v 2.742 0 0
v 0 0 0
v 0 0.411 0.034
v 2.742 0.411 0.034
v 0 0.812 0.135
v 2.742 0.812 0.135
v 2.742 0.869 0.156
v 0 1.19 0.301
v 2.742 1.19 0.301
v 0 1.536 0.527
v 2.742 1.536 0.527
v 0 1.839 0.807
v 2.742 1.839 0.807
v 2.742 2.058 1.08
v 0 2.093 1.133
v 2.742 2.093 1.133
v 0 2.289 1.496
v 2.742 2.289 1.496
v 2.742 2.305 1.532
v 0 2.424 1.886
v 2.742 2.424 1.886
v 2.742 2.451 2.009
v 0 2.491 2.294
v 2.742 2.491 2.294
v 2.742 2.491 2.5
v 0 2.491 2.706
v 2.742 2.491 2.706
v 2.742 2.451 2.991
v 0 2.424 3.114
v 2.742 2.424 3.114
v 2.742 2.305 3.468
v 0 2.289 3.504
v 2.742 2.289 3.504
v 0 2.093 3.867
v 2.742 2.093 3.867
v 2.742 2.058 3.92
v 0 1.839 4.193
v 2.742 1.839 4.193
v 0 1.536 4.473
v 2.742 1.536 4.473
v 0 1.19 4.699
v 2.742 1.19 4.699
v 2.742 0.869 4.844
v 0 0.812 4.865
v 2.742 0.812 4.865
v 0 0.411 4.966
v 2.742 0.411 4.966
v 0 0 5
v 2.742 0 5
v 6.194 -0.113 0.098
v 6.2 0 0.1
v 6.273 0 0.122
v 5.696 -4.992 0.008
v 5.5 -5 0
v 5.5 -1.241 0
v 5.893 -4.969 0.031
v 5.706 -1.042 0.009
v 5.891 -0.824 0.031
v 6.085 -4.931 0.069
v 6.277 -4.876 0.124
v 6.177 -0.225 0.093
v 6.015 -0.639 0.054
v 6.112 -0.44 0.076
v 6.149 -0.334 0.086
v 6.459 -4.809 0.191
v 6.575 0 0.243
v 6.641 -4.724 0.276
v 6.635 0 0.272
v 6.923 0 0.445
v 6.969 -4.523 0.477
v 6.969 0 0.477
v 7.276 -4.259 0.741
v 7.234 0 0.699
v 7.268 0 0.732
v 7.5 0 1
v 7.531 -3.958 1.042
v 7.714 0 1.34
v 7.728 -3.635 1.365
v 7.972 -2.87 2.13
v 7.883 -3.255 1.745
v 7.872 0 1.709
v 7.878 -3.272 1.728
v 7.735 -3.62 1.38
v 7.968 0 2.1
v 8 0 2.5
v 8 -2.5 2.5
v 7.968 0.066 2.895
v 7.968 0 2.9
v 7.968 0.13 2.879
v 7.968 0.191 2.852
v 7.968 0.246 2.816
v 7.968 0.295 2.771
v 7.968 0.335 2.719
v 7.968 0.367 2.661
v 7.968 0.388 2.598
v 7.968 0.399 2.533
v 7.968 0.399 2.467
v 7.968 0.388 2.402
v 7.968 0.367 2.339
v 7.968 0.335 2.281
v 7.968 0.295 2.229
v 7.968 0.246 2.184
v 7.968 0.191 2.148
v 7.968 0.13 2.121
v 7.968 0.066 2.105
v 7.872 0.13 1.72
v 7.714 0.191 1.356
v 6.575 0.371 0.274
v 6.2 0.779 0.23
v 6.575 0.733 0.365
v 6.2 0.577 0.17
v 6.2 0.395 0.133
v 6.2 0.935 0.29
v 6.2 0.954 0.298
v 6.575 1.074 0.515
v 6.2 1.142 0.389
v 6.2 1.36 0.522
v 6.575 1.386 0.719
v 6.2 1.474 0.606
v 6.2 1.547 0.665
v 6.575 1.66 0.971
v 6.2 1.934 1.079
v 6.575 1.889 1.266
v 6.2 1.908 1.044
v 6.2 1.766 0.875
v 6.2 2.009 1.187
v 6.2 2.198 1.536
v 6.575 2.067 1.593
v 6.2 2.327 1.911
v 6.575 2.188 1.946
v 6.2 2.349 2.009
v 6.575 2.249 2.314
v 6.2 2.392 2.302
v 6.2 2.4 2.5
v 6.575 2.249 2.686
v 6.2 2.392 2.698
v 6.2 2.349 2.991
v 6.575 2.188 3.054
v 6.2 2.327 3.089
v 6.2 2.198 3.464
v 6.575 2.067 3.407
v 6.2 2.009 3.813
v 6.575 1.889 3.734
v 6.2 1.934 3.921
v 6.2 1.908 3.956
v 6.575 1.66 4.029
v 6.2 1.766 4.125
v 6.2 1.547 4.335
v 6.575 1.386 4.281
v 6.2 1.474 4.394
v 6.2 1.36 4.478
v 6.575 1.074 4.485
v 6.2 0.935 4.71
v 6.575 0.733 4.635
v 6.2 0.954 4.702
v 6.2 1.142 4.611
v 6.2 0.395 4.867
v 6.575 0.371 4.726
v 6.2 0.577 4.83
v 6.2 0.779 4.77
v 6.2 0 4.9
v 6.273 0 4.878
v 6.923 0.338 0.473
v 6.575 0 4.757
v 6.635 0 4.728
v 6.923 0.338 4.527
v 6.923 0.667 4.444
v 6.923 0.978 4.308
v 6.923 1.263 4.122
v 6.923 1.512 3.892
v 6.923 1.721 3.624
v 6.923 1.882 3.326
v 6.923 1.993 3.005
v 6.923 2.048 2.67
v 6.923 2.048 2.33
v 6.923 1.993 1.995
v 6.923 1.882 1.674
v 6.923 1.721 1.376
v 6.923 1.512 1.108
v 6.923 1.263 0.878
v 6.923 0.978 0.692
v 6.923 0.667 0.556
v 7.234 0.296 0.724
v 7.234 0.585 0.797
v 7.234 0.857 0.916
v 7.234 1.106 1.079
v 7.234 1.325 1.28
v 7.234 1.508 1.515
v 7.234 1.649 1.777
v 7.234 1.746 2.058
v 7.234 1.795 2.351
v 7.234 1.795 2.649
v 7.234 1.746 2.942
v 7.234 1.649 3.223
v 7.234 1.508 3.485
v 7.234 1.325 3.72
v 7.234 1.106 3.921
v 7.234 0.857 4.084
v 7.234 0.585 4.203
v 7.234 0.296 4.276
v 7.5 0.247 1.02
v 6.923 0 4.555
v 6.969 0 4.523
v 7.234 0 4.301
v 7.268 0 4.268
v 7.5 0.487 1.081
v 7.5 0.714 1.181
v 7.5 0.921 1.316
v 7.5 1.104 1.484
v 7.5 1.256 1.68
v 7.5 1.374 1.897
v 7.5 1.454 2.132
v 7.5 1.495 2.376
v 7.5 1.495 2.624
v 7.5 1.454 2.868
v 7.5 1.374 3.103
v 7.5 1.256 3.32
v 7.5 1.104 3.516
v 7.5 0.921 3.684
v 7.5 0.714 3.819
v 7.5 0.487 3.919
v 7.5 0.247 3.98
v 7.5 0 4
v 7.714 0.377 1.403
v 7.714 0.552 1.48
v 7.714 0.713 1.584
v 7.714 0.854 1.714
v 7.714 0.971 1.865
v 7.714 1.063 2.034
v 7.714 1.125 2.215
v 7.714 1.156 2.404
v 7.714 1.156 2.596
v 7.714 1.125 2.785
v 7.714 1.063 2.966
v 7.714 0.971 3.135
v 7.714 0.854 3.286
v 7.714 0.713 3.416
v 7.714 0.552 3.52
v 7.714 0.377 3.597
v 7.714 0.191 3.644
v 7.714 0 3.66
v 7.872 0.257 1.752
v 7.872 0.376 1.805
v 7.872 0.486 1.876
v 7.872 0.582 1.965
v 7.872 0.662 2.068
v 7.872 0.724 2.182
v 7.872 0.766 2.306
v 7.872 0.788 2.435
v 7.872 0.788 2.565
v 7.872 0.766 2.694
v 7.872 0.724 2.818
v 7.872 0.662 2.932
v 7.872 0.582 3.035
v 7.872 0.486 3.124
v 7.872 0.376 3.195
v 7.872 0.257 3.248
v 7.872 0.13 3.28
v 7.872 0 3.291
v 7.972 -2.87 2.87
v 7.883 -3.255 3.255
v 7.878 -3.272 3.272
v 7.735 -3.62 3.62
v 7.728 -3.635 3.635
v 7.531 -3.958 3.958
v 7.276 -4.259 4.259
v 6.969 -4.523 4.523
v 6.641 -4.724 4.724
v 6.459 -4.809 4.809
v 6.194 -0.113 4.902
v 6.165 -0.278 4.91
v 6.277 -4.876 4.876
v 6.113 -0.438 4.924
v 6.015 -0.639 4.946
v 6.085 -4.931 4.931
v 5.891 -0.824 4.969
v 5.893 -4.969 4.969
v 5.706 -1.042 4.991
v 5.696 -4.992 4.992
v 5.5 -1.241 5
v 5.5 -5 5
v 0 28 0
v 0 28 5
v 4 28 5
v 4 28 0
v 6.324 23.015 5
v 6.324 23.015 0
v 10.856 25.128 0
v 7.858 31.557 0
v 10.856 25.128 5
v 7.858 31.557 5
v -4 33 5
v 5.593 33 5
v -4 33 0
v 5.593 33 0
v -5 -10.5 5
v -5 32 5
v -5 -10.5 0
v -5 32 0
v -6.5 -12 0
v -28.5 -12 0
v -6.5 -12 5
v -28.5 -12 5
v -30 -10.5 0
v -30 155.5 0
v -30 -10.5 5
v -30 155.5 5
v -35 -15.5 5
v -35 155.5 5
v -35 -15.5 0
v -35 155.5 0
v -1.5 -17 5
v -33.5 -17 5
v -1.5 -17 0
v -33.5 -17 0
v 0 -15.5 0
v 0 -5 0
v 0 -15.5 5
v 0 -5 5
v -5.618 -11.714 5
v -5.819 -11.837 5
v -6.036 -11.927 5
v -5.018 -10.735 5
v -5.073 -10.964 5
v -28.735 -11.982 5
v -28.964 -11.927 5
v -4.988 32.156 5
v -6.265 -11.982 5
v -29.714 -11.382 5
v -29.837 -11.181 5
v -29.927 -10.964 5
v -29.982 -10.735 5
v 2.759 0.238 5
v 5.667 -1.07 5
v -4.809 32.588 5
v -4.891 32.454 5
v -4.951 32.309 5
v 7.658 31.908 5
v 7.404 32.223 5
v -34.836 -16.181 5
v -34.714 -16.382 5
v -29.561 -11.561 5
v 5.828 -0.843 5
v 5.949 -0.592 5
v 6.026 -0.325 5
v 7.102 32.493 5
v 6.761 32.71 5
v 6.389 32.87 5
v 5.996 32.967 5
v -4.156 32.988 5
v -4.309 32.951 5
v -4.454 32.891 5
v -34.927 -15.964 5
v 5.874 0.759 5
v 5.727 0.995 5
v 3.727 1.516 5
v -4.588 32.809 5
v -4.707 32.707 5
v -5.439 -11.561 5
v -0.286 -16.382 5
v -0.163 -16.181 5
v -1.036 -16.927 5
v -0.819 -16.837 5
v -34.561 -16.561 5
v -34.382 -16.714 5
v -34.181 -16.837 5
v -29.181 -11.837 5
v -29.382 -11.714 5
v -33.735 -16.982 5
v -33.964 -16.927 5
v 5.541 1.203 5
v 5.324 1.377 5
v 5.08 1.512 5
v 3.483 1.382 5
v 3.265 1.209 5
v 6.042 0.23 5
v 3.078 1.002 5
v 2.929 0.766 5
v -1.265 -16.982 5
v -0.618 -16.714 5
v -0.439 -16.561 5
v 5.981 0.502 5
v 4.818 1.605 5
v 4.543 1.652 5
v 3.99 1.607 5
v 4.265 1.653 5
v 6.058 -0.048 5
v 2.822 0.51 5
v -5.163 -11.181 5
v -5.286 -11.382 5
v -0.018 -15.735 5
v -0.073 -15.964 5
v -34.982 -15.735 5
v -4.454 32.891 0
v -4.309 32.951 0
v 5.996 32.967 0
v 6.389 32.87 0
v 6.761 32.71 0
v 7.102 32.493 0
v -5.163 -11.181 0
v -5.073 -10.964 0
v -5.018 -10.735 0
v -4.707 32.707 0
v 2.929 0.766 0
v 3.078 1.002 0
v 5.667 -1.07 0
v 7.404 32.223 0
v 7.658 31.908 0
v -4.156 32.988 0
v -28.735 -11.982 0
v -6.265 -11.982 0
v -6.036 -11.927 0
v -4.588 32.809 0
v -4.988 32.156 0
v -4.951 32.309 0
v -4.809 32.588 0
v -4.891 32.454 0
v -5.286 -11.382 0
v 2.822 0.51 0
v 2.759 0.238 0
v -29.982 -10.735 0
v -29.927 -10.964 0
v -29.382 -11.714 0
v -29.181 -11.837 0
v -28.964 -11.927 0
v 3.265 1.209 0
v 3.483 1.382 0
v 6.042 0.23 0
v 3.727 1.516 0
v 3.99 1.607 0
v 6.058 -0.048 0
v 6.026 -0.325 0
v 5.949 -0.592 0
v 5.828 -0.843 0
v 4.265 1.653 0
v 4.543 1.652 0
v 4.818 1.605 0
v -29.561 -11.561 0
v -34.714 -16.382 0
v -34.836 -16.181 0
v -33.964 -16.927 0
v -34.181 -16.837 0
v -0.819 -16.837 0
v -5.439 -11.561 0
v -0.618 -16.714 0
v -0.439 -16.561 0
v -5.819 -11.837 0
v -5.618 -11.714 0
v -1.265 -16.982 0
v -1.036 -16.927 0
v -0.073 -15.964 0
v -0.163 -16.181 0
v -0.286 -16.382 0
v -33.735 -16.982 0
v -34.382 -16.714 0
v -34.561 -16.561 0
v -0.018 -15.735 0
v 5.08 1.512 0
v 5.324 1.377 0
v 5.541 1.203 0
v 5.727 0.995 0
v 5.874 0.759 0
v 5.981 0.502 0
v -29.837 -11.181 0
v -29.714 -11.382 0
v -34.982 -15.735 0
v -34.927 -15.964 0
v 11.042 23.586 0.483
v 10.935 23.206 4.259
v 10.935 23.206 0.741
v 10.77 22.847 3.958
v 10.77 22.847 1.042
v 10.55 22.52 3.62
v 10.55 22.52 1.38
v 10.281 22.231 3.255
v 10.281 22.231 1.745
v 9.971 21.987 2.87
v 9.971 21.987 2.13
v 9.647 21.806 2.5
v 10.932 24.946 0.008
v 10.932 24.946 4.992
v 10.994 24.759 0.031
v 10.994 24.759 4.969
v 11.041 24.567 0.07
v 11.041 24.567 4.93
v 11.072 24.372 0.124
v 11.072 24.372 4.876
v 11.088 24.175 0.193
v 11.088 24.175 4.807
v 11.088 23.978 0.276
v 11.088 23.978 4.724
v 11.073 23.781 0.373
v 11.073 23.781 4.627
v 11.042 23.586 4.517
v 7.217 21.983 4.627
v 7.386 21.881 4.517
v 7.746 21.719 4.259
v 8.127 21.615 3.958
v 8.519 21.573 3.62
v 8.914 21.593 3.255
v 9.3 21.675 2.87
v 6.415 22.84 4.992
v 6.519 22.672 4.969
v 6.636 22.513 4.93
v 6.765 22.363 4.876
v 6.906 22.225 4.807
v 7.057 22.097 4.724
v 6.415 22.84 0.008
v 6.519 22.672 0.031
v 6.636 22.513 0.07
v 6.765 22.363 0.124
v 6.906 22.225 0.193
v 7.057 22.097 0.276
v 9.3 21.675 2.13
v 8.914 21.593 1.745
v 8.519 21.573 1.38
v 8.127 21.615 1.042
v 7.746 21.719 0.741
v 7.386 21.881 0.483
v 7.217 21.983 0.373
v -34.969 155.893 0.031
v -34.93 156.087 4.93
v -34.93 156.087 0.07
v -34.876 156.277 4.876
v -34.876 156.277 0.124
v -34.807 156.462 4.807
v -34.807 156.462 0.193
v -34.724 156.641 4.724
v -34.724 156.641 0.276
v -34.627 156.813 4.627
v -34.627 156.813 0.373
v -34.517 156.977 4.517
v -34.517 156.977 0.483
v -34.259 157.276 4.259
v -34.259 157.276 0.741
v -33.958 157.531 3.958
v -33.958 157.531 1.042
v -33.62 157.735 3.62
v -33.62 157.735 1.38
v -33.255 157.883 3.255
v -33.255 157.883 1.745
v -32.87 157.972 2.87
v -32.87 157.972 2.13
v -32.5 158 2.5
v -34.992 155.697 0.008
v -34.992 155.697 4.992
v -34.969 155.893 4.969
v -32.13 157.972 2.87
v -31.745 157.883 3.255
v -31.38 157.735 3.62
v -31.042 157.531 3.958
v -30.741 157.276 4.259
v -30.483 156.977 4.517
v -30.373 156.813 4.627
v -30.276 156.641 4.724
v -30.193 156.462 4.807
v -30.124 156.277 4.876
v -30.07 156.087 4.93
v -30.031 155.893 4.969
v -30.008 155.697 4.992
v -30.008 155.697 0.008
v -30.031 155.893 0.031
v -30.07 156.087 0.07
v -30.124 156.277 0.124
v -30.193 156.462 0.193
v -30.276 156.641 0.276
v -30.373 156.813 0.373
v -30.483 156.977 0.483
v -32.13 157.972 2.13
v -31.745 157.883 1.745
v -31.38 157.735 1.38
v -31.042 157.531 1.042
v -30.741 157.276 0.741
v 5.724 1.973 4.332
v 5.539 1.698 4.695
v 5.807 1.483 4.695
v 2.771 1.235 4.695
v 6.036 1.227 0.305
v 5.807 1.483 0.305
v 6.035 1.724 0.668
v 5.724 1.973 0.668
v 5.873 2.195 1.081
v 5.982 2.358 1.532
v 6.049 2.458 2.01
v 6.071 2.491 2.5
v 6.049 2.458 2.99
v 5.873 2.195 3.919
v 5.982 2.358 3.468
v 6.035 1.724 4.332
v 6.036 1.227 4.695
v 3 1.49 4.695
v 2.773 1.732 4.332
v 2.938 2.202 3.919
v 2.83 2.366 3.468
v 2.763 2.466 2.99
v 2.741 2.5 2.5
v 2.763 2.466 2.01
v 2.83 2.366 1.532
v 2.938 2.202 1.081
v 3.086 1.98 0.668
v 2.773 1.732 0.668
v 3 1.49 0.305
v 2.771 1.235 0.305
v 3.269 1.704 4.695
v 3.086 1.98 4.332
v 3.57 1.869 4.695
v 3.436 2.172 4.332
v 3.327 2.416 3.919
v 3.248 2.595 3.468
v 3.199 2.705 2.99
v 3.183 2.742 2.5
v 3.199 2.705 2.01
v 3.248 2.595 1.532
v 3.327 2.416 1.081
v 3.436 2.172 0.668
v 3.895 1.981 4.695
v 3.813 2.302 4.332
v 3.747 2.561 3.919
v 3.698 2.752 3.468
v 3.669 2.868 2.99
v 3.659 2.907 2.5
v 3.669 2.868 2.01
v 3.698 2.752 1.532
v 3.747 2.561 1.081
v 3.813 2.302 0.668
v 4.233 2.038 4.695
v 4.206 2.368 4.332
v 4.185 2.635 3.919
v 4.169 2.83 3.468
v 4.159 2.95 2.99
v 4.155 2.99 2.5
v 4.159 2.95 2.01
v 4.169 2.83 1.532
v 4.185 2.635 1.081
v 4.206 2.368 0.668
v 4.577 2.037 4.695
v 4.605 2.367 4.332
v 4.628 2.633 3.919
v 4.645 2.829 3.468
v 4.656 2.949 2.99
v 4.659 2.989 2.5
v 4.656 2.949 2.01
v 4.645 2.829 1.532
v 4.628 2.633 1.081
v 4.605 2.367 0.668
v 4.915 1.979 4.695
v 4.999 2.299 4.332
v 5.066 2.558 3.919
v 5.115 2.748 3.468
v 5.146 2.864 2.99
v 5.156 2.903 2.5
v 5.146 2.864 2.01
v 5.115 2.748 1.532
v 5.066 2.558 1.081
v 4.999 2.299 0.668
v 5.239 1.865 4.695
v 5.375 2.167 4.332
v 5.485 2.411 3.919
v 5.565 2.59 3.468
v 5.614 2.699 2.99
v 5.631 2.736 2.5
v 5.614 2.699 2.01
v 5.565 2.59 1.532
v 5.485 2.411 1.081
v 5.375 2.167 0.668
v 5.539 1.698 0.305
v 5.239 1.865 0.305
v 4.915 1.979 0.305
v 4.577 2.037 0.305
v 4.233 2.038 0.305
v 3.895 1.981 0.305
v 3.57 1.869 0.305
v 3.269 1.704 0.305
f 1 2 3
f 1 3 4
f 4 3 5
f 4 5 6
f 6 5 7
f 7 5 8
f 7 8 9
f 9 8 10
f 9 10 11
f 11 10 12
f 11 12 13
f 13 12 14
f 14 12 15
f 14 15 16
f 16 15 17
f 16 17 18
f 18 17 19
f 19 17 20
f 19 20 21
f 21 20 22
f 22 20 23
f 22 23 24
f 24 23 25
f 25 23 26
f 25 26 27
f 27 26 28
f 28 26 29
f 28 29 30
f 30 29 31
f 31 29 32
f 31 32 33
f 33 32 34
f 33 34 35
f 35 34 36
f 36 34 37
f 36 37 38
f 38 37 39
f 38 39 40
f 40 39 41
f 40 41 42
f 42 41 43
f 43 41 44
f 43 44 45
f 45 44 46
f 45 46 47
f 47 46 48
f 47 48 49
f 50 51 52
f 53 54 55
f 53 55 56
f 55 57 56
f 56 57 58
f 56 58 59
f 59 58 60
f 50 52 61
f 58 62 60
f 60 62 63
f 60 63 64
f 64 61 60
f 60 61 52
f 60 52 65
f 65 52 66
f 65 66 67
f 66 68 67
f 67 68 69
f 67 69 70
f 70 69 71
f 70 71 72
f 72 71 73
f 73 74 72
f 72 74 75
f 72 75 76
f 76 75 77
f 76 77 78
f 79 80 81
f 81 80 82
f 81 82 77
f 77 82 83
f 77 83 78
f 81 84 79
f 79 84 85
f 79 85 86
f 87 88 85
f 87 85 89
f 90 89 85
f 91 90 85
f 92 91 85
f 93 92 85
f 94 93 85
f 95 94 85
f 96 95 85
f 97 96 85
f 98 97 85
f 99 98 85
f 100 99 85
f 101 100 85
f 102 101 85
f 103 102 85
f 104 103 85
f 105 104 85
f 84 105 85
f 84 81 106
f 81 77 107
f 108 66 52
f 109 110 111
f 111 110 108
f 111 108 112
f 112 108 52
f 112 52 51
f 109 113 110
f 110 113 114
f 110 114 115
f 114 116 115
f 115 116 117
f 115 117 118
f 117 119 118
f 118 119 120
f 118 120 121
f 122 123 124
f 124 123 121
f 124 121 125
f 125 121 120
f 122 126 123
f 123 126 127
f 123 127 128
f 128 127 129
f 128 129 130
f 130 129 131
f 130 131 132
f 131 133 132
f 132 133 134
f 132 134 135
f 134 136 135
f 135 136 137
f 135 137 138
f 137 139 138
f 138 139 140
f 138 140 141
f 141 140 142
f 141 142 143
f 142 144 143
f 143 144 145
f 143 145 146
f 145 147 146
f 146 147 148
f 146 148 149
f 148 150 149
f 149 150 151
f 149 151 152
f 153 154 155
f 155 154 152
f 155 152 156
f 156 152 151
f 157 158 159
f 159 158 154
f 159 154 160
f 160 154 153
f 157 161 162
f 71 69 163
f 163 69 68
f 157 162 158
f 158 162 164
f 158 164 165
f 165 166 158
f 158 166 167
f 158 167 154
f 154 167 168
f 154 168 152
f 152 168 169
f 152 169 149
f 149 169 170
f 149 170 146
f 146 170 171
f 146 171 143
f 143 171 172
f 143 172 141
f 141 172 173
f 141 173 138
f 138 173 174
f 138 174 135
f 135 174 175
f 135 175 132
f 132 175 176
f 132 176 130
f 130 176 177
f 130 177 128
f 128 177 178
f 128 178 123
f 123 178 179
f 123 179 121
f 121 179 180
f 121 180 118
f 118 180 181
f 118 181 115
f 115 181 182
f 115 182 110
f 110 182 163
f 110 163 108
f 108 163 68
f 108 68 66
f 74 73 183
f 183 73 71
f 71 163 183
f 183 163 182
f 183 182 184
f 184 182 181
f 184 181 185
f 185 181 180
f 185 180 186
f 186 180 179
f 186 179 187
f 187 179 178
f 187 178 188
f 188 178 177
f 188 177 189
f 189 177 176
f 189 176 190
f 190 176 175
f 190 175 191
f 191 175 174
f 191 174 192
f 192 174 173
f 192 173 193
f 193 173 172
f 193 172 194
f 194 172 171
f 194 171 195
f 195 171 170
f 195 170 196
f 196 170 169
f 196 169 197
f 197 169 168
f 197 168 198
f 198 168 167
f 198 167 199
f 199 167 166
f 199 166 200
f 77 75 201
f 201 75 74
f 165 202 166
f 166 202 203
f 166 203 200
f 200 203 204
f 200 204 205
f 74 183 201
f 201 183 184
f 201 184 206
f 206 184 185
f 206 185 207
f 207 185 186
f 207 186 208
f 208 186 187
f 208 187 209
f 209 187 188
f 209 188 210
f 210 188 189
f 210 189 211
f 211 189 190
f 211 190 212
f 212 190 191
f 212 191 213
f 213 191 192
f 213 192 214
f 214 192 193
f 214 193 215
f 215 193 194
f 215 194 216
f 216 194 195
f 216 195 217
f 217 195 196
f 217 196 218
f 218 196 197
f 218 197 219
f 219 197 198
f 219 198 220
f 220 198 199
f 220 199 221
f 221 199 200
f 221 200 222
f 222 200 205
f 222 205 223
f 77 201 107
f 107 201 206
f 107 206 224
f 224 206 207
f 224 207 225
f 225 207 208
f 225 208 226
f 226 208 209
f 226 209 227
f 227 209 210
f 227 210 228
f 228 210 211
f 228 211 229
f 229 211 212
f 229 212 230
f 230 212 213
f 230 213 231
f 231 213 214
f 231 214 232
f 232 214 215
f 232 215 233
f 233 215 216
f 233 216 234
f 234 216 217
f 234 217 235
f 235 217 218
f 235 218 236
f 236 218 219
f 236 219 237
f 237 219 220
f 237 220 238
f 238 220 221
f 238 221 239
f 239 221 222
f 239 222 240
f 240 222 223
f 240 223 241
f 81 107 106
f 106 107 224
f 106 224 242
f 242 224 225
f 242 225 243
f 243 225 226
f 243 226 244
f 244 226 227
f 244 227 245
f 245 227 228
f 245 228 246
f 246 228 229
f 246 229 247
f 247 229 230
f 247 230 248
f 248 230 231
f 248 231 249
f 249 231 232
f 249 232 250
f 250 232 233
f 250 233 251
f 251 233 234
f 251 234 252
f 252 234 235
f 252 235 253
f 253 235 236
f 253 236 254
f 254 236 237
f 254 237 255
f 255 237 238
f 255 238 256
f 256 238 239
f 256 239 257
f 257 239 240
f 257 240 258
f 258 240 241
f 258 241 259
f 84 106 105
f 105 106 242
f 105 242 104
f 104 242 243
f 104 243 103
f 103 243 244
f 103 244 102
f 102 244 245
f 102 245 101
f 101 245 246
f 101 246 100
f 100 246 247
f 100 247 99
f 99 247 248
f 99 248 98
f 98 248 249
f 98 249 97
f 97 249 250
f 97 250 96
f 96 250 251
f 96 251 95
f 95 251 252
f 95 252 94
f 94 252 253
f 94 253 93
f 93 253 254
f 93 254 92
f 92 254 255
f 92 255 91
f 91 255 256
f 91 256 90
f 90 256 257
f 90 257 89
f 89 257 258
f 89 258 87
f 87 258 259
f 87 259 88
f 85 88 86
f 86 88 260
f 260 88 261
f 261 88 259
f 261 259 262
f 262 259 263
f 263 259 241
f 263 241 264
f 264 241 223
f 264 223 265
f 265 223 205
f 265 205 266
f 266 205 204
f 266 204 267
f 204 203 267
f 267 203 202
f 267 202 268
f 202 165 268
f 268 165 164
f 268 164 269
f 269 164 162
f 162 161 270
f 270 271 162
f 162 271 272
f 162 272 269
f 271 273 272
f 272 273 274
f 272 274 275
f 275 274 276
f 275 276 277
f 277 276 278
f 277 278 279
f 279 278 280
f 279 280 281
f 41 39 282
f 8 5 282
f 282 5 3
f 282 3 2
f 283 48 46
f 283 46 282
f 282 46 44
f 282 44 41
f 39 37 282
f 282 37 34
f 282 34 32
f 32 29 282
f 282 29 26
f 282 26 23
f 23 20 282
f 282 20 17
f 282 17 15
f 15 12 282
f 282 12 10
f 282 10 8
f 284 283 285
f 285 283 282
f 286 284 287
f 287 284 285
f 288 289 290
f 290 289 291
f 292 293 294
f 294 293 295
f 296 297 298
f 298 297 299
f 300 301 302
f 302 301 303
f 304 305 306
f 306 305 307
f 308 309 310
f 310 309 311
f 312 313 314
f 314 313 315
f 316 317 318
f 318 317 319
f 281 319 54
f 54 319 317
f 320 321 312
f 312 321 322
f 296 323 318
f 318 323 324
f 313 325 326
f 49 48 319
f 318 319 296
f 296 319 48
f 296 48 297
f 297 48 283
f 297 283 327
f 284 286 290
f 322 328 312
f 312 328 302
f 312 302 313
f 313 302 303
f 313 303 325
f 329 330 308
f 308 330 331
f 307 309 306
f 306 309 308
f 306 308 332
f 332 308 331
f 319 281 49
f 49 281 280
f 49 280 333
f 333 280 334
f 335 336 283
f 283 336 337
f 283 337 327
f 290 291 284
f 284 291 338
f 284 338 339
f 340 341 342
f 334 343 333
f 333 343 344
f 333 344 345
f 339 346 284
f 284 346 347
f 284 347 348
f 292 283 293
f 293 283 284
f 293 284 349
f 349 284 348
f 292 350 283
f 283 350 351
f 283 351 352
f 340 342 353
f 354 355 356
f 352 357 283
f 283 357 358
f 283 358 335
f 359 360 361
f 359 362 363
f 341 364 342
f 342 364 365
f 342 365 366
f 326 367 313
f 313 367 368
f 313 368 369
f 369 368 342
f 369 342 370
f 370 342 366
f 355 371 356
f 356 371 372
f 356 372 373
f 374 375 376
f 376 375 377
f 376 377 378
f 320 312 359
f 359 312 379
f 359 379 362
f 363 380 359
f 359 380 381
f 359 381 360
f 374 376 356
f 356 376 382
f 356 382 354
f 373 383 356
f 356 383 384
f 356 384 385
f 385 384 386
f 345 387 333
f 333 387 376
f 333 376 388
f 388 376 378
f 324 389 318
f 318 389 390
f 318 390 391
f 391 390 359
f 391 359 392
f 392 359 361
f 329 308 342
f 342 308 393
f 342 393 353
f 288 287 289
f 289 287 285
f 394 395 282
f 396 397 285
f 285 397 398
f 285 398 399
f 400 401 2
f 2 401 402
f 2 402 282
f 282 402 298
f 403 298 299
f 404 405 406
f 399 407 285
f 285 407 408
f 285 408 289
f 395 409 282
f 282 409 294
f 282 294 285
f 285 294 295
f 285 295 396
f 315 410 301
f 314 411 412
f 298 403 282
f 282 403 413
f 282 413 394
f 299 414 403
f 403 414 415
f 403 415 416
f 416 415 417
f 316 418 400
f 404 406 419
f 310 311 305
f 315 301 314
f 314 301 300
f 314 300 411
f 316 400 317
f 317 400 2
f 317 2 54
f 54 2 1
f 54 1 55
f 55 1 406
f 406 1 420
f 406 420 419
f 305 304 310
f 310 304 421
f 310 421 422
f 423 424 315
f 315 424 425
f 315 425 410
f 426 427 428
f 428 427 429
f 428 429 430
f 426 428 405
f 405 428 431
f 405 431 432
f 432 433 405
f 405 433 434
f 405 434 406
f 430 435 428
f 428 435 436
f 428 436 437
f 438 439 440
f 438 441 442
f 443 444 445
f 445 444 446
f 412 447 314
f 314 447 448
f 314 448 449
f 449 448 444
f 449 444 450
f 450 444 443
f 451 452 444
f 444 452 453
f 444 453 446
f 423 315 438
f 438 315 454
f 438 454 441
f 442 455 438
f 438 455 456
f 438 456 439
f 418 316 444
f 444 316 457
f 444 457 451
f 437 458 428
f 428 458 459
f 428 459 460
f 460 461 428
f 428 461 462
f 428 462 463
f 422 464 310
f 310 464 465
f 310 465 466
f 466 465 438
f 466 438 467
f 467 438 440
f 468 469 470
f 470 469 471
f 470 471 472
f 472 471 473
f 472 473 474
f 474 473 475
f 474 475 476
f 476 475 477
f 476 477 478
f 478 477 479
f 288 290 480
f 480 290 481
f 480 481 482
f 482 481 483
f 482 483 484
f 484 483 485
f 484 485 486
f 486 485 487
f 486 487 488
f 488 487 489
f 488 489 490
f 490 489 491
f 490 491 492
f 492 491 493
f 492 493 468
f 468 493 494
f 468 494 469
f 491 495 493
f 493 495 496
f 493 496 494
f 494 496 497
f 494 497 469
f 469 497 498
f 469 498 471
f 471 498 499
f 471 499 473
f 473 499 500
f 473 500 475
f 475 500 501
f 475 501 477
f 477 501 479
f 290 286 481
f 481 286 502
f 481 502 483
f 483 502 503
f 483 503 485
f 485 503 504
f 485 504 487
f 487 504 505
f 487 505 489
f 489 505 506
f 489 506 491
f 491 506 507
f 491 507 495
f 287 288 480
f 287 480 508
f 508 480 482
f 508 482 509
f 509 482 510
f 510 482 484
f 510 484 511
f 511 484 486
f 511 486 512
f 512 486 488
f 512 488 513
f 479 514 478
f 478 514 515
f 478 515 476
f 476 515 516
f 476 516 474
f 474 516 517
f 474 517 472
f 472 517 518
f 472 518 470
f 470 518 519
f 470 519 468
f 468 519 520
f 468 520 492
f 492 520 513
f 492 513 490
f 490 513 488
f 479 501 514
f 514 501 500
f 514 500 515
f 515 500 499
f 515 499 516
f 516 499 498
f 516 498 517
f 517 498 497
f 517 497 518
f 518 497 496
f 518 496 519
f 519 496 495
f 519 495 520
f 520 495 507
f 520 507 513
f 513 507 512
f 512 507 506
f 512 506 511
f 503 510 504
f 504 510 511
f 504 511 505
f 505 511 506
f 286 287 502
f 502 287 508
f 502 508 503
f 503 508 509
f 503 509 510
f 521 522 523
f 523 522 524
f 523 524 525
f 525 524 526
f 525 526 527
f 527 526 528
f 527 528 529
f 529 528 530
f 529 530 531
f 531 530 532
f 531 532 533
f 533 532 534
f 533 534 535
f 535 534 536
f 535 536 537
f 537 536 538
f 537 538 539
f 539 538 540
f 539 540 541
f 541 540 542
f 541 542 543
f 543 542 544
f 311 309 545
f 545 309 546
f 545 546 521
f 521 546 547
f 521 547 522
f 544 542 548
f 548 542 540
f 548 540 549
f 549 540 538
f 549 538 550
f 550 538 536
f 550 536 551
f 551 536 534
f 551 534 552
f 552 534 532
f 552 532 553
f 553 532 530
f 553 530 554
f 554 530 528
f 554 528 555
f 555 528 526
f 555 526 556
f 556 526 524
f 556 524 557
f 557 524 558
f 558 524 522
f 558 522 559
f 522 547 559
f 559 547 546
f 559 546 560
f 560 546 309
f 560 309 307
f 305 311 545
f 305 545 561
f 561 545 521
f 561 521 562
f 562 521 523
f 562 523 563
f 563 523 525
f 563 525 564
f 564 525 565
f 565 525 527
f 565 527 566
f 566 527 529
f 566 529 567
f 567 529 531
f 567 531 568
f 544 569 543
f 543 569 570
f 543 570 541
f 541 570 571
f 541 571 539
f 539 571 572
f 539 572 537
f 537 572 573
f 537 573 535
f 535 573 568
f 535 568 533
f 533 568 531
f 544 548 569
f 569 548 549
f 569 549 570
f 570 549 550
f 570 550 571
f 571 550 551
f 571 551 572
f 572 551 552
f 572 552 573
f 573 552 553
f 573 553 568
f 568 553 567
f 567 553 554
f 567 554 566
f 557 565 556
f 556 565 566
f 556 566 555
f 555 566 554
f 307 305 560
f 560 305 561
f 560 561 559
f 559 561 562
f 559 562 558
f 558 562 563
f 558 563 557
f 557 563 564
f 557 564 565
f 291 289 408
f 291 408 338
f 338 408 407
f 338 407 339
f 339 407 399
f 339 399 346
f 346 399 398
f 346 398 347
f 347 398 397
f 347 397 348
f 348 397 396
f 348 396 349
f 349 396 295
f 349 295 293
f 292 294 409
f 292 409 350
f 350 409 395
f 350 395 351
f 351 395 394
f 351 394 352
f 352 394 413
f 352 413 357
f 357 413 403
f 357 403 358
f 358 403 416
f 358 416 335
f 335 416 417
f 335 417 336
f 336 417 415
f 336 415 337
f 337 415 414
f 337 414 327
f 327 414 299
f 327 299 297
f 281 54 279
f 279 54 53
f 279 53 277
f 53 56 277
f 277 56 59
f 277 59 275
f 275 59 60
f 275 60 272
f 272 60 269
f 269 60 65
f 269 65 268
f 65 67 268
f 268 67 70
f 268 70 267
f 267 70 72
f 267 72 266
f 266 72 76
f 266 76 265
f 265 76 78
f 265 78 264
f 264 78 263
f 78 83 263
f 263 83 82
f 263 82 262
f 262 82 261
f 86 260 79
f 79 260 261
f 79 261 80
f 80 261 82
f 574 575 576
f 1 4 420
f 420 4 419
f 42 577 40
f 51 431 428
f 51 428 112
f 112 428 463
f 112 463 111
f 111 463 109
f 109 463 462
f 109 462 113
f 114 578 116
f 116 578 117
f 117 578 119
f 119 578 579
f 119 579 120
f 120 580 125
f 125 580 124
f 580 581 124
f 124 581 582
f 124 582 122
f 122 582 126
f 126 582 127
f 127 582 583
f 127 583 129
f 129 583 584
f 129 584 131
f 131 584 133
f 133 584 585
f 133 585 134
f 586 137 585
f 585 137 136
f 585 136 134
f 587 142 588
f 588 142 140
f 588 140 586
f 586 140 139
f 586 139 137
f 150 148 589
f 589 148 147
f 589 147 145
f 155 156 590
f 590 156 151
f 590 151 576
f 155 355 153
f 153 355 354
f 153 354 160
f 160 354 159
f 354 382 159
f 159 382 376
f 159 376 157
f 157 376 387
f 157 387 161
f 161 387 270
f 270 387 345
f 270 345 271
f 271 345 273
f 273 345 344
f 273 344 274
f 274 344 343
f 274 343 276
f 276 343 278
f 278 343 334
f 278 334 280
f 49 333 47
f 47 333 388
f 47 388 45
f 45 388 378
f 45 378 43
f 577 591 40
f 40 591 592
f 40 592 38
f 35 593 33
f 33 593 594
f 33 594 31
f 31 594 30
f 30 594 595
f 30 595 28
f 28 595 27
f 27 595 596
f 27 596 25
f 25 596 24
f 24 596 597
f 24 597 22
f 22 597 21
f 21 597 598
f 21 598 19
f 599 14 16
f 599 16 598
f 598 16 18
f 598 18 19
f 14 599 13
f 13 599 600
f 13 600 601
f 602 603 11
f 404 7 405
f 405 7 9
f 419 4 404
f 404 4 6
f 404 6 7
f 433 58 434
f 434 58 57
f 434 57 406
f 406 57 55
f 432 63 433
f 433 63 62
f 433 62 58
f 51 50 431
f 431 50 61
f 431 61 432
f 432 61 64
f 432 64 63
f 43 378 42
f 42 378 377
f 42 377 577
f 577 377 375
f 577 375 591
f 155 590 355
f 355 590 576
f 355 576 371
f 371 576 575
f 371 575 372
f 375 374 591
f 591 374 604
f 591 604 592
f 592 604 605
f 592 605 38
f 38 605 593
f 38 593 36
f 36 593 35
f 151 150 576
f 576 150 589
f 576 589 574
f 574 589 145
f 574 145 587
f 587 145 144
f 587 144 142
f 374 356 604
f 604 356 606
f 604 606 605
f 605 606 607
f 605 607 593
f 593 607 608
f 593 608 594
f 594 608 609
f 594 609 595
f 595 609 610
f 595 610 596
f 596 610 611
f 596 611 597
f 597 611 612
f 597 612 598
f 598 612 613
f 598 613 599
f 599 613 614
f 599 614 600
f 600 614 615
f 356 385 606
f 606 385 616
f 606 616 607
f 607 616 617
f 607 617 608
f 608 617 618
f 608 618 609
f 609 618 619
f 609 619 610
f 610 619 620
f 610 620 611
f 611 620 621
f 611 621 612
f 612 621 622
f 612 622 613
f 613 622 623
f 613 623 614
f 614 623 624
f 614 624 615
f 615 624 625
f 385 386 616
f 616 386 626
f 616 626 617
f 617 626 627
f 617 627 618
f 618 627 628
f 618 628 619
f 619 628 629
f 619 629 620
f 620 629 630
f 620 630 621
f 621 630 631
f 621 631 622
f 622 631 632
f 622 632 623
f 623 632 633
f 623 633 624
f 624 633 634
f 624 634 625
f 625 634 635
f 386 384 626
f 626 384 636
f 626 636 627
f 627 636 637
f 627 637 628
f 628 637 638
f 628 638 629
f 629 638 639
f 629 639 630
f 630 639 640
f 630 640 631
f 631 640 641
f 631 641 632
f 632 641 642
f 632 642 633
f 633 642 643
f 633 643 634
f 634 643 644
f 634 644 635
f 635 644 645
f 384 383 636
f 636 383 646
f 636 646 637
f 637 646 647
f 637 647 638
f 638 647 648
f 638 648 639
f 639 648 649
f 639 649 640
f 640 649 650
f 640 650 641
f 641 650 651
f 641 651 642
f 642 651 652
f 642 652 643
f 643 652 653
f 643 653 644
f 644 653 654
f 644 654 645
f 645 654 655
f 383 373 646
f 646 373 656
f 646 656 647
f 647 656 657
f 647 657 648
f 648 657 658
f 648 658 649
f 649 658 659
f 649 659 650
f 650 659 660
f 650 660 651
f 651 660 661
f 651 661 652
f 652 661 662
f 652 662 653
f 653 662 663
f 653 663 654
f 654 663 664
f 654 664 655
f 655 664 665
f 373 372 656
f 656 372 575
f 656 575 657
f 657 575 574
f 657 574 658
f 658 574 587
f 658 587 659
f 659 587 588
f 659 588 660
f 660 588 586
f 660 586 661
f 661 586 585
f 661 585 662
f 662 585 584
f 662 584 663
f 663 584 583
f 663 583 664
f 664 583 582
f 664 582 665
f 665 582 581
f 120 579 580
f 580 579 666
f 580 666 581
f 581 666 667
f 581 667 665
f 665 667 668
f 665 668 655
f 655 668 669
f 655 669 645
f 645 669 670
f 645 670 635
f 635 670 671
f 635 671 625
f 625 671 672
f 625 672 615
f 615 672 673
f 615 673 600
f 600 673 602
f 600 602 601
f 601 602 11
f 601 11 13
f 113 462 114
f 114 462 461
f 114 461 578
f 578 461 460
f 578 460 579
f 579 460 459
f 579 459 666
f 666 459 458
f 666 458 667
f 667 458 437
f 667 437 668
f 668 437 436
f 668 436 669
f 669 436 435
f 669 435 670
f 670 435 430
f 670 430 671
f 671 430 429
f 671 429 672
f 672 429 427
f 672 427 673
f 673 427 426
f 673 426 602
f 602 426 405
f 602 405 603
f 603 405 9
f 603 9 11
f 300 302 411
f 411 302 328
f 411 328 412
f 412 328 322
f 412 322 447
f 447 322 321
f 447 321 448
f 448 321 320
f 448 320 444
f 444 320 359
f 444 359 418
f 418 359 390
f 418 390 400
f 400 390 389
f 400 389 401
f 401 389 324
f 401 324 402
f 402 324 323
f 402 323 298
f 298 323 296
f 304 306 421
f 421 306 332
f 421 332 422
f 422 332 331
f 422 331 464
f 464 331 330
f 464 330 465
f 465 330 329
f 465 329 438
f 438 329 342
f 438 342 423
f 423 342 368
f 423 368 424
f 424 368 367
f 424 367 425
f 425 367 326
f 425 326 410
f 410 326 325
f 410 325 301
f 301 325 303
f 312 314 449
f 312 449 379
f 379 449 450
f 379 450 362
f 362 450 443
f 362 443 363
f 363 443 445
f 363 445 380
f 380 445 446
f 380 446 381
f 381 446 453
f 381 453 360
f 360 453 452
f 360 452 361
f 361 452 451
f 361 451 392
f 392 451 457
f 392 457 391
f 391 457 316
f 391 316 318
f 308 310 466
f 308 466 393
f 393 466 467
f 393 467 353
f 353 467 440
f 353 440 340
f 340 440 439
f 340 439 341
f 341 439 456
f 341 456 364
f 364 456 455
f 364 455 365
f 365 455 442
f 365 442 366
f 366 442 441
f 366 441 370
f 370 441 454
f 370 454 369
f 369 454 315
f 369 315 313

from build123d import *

# Parameters (mm, degrees)
EXTRUDE_1_DEPTH     = 5
FILLET_1_R          = 2.5
FILLET_2_R          = 1
EXTRUDE_2_DEPTH     = 8
FILLET_3_R          = 2.5
SKETCH_5_W          = 1.467751534
SKETCH_5_H          = 4.178210798
SKETCH_5_W_2        = 1.389566385
CUT_EXTRUDE_1_DEPTH = 20
FILLET_4_R          = 1.5
FILLET_5_R          = 1.5


with BuildPart() as part:
    # 草图1 → 凸台-拉伸1 (new body)
    with BuildSketch(Plane.XY):
        Polygon((0, 0), (0, 28), (4, 28), (7.380946094, 20.749537704), (11.912485029, 22.862629012), (7.185351304, 33), (-5, 33), (-5, -12), (-30, -12), (-30, 158), (-35, 158), (-35, -17), (0, -17), (0, -5), (8, -5), (8, 0), align=None)
    extrude(amount=EXTRUDE_1_DEPTH)

    # 圆角1
    fillet_1_edges = [part.edges().sort_by_distance(p)[0] for p in [
        (-32.5, 158, 0),
        (9.646715562, 21.806083358, 0),
        (9.646715562, 21.806083358, 5),
        (-35, 158, 2.5),
        (-30, 158, 2.5),
        (7.185351304, 33, 2.5),
        (11.912485029, 22.862629012, 2.5),
        (7.380946094, 20.749537704, 2.5),
        (-32.5, 158, 5),
    ]]
    fillet(fillet_1_edges, radius=FILLET_1_R - 0.0001)  # a hair under: the kernel refuses the full size

    # 圆角2
    fillet_2_edges = [part.edges().sort_by_distance(p)[0] for p in [
        (-5, 33, 2.5),
    ]]
    fillet(fillet_2_edges, radius=FILLET_2_R)

    # 草图3 → 凸台-拉伸2 (add)
    with BuildSketch(Plane(origin=(0, 0, 0), x_dir=(0, 0, -1), z_dir=(1, 0, 0))):
        with BuildLine():
            Line((-5, 0), (0, 0))
            ThreePointArc((0, 0), (-2.5, 2.5), (-5, 0))
        make_face()
    extrude(amount=EXTRUDE_2_DEPTH)

    # 圆角3
    fillet_3_edges = [part.edges().sort_by_distance(p)[0] for p in [
        (8, -2.5, 0),
        (8, -5, 2.5),
        (8, -2.5, 5),
        (8, 2.5, 2.5),
    ]]
    fillet(fillet_3_edges, radius=FILLET_3_R - 0.0001)  # a hair under: the kernel refuses the full size

    # 草图4 → 旋转3 (revolve)
    with BuildSketch(Plane(origin=(4.4, 0, 0), x_dir=(0, 0, -1), z_dir=(1, 0, 0))):
        with BuildLine():
            Line((-5.5, 0), (0.5, 0))
            ThreePointArc((0.5, 0), (-2.5, 3), (-5.5, 0))
        make_face()
    revolve(axis=Axis((4.4, 0, 2.5), (0, 0, -1)))

    # 草图5 → 切除-拉伸1 (cut)
    with BuildSketch(Plane.ZY.offset(5)):
        with Locations((-0.733875767, -0.010051234)):
            Rectangle(SKETCH_5_W, SKETCH_5_H)
        with Locations((5.694783193, -0.010051234)):
            Rectangle(SKETCH_5_W_2, SKETCH_5_H)
    extrude(amount=-CUT_EXTRUDE_1_DEPTH, mode=Mode.SUBTRACT)

    # 圆角4
    fillet_4_edges = [part.edges().sort_by_distance(p)[0] for p in [
        (-30, -12, 2.5),
        (-5, -12, 2.5),
    ]]
    fillet(fillet_4_edges, radius=FILLET_4_R)

    # 圆角5
    fillet_5_edges = [part.edges().sort_by_distance(p)[0] for p in [
        (0, -17, 2.5),
        (-35, -17, 2.5),
    ]]
    fillet(fillet_5_edges, radius=FILLET_5_R)


solid = part.part
